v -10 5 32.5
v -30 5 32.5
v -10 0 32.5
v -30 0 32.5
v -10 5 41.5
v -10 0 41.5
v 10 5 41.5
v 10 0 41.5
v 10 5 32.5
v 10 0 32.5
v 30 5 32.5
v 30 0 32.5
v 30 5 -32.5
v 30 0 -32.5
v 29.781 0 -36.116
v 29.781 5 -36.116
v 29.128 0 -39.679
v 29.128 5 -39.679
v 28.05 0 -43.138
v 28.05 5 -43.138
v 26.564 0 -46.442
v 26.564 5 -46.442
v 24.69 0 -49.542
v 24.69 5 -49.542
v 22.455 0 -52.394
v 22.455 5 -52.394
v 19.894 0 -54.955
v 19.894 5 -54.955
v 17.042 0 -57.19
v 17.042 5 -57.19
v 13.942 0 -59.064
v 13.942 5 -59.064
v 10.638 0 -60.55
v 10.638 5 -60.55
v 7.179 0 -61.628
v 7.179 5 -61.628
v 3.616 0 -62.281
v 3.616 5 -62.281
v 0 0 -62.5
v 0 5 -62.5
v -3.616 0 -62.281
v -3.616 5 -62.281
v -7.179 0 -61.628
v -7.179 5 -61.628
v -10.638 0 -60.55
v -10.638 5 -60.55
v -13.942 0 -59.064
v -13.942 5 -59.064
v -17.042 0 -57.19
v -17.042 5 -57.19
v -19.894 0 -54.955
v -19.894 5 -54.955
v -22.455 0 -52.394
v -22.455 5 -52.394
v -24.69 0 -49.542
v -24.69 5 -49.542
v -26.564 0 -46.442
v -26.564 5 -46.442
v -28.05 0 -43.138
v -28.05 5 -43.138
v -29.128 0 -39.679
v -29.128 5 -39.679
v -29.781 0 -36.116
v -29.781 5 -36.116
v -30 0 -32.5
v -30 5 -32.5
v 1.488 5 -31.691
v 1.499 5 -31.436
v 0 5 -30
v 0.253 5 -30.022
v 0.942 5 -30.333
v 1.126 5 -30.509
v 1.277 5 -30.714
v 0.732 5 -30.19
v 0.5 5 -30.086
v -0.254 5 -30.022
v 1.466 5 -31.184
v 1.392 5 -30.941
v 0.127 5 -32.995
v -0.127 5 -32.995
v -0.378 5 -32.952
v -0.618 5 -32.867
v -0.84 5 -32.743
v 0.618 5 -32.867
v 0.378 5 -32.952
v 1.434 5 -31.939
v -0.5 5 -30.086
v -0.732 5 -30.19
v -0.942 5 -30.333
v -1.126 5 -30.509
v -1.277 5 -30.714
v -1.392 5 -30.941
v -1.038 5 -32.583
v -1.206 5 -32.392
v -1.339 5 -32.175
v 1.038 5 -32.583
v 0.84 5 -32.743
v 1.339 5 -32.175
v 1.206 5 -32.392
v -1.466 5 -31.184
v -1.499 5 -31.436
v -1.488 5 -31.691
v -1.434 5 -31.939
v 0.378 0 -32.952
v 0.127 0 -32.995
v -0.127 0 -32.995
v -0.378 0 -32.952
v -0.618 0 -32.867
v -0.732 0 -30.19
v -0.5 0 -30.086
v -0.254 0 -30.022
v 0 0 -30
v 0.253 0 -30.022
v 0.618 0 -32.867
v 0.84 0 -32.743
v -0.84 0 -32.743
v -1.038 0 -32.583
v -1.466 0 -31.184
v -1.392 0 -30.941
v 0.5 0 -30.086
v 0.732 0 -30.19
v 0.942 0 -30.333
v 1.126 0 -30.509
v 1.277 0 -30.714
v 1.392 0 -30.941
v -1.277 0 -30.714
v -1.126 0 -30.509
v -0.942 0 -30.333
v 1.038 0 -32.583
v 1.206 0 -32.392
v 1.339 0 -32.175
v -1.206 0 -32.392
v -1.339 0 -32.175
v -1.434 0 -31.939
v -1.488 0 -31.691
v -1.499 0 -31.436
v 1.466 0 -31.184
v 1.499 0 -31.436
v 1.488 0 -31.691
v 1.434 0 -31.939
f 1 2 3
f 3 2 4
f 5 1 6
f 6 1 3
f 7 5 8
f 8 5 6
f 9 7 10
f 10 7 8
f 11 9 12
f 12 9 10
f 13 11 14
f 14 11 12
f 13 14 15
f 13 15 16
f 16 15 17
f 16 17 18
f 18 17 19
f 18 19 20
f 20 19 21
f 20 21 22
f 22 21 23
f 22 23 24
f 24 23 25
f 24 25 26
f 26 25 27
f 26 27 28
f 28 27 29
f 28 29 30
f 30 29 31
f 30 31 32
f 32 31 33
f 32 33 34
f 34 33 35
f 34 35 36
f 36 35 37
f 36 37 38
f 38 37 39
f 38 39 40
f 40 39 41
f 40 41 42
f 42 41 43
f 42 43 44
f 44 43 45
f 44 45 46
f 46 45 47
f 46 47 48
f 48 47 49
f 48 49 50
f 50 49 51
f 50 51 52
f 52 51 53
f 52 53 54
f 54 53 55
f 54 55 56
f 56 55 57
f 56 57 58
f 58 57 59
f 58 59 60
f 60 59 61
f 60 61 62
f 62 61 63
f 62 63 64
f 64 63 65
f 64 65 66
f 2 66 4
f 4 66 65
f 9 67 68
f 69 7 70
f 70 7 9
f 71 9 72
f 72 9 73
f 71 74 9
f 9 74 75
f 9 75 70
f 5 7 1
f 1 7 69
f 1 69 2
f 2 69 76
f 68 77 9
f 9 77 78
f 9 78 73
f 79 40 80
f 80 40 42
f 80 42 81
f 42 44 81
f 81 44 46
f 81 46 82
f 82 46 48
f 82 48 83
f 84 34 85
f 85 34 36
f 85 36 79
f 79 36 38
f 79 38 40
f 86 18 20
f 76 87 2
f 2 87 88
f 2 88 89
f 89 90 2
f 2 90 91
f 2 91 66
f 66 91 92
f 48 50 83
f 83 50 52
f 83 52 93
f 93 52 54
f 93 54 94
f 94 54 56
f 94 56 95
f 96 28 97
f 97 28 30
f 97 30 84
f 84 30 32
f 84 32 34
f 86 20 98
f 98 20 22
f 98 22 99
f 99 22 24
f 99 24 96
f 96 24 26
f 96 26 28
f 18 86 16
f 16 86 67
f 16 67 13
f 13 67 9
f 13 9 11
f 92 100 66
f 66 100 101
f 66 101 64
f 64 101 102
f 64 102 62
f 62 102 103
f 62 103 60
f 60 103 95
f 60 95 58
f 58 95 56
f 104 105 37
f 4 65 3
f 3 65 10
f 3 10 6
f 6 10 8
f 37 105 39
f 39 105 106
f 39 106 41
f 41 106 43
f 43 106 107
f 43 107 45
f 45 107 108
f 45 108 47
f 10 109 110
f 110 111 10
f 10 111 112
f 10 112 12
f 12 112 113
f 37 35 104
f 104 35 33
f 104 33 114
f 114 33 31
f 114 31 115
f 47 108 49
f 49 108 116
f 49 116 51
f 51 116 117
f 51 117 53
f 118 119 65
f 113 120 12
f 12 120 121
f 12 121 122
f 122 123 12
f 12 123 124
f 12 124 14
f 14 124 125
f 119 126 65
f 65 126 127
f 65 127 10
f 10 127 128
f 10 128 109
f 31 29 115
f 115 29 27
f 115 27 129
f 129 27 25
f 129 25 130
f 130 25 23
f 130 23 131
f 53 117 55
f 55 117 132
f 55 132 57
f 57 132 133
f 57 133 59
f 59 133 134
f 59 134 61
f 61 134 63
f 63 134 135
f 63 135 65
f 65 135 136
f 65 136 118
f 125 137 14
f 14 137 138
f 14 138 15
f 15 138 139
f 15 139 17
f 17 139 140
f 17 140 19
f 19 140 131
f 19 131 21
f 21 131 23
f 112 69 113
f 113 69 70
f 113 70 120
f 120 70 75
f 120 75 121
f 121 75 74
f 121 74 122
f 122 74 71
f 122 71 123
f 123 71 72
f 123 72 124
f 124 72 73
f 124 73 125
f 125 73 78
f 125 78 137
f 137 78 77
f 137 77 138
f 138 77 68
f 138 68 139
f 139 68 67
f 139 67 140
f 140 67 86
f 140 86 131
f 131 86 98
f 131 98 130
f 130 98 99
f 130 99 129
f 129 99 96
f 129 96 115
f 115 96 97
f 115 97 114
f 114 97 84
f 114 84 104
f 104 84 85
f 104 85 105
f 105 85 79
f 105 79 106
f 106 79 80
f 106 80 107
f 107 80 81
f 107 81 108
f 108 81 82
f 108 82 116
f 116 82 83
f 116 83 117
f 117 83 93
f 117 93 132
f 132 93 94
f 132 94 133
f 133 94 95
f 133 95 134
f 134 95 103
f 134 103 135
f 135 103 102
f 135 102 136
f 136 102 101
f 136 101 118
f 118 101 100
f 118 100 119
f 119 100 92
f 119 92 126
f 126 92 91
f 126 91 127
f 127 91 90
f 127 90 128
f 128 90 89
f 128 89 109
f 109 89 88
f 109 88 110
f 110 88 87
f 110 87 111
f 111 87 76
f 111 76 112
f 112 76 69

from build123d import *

# Parameters (mm, degrees)
SKETCH1_W           = 60
SKETCH1_H           = 65
SKETCH1_W_2         = 20
SKETCH1_H_2         = 9
BOSS_EXTRUDE1_DEPTH = 5
SKETCH2_R           = 1.5
CUT_EXTRUDE1_DEPTH  = 6


with BuildPart() as part:
    # Sketch1 → Boss-Extrude1 (new body)
    with BuildSketch(Plane(origin=(0, 0, 0), x_dir=(1, 0, 0), z_dir=(0, 1, 0))):
        Rectangle(SKETCH1_W, SKETCH1_H)
        with Locations((0, -37)):
            Rectangle(SKETCH1_W_2, SKETCH1_H_2)
        with BuildLine():
            Line((-30, 32.5), (30, 32.5))
            ThreePointArc((30, 32.5), (0, 62.5), (-30, 32.5))
        make_face()
    extrude(amount=BOSS_EXTRUDE1_DEPTH)

    # Sketch2 → Cut-Extrude1 (cut, through all)
    with BuildSketch(Plane(origin=(0, 5, 0), x_dir=(1, 0, 0), z_dir=(0, 1, 0))):
        with Locations((0, 31.5)):
            Circle(SKETCH2_R)
    extrude(amount=-CUT_EXTRUDE1_DEPTH, mode=Mode.SUBTRACT)


solid = part.part
